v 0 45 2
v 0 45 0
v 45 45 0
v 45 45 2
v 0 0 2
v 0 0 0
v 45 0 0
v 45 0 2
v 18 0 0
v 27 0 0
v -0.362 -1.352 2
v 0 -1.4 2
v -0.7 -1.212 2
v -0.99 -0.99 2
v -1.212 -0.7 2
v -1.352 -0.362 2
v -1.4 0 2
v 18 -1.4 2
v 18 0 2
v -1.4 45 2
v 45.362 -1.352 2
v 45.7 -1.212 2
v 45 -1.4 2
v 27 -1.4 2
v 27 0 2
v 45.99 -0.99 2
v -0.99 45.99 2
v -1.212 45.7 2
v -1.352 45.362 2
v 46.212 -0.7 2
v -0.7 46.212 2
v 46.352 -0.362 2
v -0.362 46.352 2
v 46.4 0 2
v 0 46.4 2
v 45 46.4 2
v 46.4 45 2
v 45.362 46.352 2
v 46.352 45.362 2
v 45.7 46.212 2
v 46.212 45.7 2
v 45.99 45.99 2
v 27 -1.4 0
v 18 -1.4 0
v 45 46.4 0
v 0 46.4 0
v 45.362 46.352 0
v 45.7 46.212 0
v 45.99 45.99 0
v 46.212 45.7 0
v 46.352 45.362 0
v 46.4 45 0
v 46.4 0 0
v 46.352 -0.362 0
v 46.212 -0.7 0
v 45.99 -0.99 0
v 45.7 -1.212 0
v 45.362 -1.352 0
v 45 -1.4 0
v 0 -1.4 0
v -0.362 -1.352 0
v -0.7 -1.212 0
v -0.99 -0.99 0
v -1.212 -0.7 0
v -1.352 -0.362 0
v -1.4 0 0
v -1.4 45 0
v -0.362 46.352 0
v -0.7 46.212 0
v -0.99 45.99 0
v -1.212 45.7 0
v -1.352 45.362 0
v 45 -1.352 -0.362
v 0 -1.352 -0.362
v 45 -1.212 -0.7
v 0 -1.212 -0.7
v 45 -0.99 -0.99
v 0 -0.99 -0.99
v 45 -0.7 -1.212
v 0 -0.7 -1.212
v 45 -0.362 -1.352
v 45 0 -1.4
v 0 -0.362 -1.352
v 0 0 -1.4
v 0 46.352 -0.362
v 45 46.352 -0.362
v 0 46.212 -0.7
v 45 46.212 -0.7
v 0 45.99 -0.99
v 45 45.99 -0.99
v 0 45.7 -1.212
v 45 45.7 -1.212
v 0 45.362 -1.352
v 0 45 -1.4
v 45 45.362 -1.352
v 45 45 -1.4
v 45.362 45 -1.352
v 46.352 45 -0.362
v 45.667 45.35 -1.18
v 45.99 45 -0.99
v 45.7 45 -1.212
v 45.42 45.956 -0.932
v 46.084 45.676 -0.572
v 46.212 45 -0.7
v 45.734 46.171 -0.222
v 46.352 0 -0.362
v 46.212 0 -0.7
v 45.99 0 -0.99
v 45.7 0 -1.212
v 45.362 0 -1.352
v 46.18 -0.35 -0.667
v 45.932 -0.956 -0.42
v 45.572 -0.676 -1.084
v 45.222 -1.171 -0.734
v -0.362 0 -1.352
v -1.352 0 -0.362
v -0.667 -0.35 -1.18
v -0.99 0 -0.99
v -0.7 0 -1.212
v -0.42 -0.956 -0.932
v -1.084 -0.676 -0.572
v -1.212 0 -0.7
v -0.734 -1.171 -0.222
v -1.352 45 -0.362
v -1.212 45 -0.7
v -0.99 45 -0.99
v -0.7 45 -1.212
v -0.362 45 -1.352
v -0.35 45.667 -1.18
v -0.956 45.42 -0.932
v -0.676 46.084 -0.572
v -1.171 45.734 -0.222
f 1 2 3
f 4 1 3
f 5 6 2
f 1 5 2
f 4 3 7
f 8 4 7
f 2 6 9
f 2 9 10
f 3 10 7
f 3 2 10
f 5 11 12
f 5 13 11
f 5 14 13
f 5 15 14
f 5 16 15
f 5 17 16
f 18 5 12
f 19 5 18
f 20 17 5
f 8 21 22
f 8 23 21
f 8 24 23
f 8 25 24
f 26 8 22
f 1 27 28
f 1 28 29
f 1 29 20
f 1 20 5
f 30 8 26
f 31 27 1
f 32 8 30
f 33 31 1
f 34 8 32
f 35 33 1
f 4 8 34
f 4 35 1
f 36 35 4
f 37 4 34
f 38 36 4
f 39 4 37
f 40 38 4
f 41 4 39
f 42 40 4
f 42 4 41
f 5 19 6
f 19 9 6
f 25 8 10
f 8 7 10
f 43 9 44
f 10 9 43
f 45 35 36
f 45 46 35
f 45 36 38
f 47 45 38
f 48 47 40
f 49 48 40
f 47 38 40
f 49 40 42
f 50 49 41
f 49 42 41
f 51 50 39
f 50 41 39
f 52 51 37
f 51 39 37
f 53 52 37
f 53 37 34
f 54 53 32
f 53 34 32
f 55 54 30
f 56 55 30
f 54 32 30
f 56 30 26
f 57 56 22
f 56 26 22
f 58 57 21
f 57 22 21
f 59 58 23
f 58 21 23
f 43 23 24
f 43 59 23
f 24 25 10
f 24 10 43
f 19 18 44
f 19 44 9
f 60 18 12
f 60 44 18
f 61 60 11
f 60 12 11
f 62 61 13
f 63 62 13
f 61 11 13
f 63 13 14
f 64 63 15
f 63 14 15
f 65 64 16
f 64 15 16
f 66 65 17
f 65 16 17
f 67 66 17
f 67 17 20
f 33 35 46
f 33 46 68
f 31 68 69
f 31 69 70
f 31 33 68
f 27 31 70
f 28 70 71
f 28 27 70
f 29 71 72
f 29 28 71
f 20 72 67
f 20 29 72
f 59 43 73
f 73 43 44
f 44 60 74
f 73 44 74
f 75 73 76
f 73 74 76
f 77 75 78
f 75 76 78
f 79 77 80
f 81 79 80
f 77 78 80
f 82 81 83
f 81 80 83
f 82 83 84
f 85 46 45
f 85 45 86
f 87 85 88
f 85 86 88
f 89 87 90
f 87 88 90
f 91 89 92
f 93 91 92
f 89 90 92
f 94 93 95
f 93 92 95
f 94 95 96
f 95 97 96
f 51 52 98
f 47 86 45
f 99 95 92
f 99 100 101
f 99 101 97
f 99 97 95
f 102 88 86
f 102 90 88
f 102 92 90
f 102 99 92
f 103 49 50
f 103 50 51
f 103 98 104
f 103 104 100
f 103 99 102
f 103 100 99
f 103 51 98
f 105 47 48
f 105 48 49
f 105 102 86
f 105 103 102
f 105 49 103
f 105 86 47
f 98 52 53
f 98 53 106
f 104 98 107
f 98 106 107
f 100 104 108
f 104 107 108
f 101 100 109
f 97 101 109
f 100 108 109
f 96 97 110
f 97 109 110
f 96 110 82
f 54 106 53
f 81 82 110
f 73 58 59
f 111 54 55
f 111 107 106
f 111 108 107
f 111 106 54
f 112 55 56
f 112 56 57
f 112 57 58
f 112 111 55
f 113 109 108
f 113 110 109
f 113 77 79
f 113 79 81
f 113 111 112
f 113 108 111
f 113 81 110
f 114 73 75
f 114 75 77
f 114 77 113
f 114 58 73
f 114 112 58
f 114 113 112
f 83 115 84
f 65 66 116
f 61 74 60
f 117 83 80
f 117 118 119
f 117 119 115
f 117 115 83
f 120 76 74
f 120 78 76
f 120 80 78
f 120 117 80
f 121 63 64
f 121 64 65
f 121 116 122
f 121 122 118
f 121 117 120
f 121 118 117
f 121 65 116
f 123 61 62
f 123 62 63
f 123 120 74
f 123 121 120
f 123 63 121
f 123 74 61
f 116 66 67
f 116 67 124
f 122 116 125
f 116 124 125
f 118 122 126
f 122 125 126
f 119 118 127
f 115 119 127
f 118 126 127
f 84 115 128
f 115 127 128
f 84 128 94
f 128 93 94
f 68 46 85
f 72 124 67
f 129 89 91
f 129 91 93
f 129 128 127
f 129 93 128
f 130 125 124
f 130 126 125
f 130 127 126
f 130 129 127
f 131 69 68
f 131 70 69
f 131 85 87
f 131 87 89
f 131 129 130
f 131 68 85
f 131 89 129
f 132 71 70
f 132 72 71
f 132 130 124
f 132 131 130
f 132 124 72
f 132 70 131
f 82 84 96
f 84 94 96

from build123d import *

# Parameters (mm, degrees)
SKETCH_W     = 45
SKETCH_H     = 45
PAD_DEPTH    = 2
THICKNESS_T  = 1.4
SKETCH001_W  = 9
SKETCH001_H  = 1.4
POCKET_DEPTH = 2


with BuildPart() as part:
    # Sketch → Pad (new body)
    with BuildSketch(Plane.XY):
        with Locations((22.5, 22.5)):
            Rectangle(SKETCH_W, SKETCH_H)
    extrude(amount=PAD_DEPTH)

    # Thickness
    thickness_openings = [part.faces().sort_by_distance(p)[0] for p in [
        (22.5, 22.5, 2),
    ]]
    offset(amount=THICKNESS_T, openings=thickness_openings)

    # Sketch001 → Pocket (cut)
    with BuildSketch(Plane.XY.offset(2)):
        with Locations((22.5, -0.7)):
            Rectangle(SKETCH001_W, SKETCH001_H)
    extrude(amount=-POCKET_DEPTH, mode=Mode.SUBTRACT)


solid = part.part
